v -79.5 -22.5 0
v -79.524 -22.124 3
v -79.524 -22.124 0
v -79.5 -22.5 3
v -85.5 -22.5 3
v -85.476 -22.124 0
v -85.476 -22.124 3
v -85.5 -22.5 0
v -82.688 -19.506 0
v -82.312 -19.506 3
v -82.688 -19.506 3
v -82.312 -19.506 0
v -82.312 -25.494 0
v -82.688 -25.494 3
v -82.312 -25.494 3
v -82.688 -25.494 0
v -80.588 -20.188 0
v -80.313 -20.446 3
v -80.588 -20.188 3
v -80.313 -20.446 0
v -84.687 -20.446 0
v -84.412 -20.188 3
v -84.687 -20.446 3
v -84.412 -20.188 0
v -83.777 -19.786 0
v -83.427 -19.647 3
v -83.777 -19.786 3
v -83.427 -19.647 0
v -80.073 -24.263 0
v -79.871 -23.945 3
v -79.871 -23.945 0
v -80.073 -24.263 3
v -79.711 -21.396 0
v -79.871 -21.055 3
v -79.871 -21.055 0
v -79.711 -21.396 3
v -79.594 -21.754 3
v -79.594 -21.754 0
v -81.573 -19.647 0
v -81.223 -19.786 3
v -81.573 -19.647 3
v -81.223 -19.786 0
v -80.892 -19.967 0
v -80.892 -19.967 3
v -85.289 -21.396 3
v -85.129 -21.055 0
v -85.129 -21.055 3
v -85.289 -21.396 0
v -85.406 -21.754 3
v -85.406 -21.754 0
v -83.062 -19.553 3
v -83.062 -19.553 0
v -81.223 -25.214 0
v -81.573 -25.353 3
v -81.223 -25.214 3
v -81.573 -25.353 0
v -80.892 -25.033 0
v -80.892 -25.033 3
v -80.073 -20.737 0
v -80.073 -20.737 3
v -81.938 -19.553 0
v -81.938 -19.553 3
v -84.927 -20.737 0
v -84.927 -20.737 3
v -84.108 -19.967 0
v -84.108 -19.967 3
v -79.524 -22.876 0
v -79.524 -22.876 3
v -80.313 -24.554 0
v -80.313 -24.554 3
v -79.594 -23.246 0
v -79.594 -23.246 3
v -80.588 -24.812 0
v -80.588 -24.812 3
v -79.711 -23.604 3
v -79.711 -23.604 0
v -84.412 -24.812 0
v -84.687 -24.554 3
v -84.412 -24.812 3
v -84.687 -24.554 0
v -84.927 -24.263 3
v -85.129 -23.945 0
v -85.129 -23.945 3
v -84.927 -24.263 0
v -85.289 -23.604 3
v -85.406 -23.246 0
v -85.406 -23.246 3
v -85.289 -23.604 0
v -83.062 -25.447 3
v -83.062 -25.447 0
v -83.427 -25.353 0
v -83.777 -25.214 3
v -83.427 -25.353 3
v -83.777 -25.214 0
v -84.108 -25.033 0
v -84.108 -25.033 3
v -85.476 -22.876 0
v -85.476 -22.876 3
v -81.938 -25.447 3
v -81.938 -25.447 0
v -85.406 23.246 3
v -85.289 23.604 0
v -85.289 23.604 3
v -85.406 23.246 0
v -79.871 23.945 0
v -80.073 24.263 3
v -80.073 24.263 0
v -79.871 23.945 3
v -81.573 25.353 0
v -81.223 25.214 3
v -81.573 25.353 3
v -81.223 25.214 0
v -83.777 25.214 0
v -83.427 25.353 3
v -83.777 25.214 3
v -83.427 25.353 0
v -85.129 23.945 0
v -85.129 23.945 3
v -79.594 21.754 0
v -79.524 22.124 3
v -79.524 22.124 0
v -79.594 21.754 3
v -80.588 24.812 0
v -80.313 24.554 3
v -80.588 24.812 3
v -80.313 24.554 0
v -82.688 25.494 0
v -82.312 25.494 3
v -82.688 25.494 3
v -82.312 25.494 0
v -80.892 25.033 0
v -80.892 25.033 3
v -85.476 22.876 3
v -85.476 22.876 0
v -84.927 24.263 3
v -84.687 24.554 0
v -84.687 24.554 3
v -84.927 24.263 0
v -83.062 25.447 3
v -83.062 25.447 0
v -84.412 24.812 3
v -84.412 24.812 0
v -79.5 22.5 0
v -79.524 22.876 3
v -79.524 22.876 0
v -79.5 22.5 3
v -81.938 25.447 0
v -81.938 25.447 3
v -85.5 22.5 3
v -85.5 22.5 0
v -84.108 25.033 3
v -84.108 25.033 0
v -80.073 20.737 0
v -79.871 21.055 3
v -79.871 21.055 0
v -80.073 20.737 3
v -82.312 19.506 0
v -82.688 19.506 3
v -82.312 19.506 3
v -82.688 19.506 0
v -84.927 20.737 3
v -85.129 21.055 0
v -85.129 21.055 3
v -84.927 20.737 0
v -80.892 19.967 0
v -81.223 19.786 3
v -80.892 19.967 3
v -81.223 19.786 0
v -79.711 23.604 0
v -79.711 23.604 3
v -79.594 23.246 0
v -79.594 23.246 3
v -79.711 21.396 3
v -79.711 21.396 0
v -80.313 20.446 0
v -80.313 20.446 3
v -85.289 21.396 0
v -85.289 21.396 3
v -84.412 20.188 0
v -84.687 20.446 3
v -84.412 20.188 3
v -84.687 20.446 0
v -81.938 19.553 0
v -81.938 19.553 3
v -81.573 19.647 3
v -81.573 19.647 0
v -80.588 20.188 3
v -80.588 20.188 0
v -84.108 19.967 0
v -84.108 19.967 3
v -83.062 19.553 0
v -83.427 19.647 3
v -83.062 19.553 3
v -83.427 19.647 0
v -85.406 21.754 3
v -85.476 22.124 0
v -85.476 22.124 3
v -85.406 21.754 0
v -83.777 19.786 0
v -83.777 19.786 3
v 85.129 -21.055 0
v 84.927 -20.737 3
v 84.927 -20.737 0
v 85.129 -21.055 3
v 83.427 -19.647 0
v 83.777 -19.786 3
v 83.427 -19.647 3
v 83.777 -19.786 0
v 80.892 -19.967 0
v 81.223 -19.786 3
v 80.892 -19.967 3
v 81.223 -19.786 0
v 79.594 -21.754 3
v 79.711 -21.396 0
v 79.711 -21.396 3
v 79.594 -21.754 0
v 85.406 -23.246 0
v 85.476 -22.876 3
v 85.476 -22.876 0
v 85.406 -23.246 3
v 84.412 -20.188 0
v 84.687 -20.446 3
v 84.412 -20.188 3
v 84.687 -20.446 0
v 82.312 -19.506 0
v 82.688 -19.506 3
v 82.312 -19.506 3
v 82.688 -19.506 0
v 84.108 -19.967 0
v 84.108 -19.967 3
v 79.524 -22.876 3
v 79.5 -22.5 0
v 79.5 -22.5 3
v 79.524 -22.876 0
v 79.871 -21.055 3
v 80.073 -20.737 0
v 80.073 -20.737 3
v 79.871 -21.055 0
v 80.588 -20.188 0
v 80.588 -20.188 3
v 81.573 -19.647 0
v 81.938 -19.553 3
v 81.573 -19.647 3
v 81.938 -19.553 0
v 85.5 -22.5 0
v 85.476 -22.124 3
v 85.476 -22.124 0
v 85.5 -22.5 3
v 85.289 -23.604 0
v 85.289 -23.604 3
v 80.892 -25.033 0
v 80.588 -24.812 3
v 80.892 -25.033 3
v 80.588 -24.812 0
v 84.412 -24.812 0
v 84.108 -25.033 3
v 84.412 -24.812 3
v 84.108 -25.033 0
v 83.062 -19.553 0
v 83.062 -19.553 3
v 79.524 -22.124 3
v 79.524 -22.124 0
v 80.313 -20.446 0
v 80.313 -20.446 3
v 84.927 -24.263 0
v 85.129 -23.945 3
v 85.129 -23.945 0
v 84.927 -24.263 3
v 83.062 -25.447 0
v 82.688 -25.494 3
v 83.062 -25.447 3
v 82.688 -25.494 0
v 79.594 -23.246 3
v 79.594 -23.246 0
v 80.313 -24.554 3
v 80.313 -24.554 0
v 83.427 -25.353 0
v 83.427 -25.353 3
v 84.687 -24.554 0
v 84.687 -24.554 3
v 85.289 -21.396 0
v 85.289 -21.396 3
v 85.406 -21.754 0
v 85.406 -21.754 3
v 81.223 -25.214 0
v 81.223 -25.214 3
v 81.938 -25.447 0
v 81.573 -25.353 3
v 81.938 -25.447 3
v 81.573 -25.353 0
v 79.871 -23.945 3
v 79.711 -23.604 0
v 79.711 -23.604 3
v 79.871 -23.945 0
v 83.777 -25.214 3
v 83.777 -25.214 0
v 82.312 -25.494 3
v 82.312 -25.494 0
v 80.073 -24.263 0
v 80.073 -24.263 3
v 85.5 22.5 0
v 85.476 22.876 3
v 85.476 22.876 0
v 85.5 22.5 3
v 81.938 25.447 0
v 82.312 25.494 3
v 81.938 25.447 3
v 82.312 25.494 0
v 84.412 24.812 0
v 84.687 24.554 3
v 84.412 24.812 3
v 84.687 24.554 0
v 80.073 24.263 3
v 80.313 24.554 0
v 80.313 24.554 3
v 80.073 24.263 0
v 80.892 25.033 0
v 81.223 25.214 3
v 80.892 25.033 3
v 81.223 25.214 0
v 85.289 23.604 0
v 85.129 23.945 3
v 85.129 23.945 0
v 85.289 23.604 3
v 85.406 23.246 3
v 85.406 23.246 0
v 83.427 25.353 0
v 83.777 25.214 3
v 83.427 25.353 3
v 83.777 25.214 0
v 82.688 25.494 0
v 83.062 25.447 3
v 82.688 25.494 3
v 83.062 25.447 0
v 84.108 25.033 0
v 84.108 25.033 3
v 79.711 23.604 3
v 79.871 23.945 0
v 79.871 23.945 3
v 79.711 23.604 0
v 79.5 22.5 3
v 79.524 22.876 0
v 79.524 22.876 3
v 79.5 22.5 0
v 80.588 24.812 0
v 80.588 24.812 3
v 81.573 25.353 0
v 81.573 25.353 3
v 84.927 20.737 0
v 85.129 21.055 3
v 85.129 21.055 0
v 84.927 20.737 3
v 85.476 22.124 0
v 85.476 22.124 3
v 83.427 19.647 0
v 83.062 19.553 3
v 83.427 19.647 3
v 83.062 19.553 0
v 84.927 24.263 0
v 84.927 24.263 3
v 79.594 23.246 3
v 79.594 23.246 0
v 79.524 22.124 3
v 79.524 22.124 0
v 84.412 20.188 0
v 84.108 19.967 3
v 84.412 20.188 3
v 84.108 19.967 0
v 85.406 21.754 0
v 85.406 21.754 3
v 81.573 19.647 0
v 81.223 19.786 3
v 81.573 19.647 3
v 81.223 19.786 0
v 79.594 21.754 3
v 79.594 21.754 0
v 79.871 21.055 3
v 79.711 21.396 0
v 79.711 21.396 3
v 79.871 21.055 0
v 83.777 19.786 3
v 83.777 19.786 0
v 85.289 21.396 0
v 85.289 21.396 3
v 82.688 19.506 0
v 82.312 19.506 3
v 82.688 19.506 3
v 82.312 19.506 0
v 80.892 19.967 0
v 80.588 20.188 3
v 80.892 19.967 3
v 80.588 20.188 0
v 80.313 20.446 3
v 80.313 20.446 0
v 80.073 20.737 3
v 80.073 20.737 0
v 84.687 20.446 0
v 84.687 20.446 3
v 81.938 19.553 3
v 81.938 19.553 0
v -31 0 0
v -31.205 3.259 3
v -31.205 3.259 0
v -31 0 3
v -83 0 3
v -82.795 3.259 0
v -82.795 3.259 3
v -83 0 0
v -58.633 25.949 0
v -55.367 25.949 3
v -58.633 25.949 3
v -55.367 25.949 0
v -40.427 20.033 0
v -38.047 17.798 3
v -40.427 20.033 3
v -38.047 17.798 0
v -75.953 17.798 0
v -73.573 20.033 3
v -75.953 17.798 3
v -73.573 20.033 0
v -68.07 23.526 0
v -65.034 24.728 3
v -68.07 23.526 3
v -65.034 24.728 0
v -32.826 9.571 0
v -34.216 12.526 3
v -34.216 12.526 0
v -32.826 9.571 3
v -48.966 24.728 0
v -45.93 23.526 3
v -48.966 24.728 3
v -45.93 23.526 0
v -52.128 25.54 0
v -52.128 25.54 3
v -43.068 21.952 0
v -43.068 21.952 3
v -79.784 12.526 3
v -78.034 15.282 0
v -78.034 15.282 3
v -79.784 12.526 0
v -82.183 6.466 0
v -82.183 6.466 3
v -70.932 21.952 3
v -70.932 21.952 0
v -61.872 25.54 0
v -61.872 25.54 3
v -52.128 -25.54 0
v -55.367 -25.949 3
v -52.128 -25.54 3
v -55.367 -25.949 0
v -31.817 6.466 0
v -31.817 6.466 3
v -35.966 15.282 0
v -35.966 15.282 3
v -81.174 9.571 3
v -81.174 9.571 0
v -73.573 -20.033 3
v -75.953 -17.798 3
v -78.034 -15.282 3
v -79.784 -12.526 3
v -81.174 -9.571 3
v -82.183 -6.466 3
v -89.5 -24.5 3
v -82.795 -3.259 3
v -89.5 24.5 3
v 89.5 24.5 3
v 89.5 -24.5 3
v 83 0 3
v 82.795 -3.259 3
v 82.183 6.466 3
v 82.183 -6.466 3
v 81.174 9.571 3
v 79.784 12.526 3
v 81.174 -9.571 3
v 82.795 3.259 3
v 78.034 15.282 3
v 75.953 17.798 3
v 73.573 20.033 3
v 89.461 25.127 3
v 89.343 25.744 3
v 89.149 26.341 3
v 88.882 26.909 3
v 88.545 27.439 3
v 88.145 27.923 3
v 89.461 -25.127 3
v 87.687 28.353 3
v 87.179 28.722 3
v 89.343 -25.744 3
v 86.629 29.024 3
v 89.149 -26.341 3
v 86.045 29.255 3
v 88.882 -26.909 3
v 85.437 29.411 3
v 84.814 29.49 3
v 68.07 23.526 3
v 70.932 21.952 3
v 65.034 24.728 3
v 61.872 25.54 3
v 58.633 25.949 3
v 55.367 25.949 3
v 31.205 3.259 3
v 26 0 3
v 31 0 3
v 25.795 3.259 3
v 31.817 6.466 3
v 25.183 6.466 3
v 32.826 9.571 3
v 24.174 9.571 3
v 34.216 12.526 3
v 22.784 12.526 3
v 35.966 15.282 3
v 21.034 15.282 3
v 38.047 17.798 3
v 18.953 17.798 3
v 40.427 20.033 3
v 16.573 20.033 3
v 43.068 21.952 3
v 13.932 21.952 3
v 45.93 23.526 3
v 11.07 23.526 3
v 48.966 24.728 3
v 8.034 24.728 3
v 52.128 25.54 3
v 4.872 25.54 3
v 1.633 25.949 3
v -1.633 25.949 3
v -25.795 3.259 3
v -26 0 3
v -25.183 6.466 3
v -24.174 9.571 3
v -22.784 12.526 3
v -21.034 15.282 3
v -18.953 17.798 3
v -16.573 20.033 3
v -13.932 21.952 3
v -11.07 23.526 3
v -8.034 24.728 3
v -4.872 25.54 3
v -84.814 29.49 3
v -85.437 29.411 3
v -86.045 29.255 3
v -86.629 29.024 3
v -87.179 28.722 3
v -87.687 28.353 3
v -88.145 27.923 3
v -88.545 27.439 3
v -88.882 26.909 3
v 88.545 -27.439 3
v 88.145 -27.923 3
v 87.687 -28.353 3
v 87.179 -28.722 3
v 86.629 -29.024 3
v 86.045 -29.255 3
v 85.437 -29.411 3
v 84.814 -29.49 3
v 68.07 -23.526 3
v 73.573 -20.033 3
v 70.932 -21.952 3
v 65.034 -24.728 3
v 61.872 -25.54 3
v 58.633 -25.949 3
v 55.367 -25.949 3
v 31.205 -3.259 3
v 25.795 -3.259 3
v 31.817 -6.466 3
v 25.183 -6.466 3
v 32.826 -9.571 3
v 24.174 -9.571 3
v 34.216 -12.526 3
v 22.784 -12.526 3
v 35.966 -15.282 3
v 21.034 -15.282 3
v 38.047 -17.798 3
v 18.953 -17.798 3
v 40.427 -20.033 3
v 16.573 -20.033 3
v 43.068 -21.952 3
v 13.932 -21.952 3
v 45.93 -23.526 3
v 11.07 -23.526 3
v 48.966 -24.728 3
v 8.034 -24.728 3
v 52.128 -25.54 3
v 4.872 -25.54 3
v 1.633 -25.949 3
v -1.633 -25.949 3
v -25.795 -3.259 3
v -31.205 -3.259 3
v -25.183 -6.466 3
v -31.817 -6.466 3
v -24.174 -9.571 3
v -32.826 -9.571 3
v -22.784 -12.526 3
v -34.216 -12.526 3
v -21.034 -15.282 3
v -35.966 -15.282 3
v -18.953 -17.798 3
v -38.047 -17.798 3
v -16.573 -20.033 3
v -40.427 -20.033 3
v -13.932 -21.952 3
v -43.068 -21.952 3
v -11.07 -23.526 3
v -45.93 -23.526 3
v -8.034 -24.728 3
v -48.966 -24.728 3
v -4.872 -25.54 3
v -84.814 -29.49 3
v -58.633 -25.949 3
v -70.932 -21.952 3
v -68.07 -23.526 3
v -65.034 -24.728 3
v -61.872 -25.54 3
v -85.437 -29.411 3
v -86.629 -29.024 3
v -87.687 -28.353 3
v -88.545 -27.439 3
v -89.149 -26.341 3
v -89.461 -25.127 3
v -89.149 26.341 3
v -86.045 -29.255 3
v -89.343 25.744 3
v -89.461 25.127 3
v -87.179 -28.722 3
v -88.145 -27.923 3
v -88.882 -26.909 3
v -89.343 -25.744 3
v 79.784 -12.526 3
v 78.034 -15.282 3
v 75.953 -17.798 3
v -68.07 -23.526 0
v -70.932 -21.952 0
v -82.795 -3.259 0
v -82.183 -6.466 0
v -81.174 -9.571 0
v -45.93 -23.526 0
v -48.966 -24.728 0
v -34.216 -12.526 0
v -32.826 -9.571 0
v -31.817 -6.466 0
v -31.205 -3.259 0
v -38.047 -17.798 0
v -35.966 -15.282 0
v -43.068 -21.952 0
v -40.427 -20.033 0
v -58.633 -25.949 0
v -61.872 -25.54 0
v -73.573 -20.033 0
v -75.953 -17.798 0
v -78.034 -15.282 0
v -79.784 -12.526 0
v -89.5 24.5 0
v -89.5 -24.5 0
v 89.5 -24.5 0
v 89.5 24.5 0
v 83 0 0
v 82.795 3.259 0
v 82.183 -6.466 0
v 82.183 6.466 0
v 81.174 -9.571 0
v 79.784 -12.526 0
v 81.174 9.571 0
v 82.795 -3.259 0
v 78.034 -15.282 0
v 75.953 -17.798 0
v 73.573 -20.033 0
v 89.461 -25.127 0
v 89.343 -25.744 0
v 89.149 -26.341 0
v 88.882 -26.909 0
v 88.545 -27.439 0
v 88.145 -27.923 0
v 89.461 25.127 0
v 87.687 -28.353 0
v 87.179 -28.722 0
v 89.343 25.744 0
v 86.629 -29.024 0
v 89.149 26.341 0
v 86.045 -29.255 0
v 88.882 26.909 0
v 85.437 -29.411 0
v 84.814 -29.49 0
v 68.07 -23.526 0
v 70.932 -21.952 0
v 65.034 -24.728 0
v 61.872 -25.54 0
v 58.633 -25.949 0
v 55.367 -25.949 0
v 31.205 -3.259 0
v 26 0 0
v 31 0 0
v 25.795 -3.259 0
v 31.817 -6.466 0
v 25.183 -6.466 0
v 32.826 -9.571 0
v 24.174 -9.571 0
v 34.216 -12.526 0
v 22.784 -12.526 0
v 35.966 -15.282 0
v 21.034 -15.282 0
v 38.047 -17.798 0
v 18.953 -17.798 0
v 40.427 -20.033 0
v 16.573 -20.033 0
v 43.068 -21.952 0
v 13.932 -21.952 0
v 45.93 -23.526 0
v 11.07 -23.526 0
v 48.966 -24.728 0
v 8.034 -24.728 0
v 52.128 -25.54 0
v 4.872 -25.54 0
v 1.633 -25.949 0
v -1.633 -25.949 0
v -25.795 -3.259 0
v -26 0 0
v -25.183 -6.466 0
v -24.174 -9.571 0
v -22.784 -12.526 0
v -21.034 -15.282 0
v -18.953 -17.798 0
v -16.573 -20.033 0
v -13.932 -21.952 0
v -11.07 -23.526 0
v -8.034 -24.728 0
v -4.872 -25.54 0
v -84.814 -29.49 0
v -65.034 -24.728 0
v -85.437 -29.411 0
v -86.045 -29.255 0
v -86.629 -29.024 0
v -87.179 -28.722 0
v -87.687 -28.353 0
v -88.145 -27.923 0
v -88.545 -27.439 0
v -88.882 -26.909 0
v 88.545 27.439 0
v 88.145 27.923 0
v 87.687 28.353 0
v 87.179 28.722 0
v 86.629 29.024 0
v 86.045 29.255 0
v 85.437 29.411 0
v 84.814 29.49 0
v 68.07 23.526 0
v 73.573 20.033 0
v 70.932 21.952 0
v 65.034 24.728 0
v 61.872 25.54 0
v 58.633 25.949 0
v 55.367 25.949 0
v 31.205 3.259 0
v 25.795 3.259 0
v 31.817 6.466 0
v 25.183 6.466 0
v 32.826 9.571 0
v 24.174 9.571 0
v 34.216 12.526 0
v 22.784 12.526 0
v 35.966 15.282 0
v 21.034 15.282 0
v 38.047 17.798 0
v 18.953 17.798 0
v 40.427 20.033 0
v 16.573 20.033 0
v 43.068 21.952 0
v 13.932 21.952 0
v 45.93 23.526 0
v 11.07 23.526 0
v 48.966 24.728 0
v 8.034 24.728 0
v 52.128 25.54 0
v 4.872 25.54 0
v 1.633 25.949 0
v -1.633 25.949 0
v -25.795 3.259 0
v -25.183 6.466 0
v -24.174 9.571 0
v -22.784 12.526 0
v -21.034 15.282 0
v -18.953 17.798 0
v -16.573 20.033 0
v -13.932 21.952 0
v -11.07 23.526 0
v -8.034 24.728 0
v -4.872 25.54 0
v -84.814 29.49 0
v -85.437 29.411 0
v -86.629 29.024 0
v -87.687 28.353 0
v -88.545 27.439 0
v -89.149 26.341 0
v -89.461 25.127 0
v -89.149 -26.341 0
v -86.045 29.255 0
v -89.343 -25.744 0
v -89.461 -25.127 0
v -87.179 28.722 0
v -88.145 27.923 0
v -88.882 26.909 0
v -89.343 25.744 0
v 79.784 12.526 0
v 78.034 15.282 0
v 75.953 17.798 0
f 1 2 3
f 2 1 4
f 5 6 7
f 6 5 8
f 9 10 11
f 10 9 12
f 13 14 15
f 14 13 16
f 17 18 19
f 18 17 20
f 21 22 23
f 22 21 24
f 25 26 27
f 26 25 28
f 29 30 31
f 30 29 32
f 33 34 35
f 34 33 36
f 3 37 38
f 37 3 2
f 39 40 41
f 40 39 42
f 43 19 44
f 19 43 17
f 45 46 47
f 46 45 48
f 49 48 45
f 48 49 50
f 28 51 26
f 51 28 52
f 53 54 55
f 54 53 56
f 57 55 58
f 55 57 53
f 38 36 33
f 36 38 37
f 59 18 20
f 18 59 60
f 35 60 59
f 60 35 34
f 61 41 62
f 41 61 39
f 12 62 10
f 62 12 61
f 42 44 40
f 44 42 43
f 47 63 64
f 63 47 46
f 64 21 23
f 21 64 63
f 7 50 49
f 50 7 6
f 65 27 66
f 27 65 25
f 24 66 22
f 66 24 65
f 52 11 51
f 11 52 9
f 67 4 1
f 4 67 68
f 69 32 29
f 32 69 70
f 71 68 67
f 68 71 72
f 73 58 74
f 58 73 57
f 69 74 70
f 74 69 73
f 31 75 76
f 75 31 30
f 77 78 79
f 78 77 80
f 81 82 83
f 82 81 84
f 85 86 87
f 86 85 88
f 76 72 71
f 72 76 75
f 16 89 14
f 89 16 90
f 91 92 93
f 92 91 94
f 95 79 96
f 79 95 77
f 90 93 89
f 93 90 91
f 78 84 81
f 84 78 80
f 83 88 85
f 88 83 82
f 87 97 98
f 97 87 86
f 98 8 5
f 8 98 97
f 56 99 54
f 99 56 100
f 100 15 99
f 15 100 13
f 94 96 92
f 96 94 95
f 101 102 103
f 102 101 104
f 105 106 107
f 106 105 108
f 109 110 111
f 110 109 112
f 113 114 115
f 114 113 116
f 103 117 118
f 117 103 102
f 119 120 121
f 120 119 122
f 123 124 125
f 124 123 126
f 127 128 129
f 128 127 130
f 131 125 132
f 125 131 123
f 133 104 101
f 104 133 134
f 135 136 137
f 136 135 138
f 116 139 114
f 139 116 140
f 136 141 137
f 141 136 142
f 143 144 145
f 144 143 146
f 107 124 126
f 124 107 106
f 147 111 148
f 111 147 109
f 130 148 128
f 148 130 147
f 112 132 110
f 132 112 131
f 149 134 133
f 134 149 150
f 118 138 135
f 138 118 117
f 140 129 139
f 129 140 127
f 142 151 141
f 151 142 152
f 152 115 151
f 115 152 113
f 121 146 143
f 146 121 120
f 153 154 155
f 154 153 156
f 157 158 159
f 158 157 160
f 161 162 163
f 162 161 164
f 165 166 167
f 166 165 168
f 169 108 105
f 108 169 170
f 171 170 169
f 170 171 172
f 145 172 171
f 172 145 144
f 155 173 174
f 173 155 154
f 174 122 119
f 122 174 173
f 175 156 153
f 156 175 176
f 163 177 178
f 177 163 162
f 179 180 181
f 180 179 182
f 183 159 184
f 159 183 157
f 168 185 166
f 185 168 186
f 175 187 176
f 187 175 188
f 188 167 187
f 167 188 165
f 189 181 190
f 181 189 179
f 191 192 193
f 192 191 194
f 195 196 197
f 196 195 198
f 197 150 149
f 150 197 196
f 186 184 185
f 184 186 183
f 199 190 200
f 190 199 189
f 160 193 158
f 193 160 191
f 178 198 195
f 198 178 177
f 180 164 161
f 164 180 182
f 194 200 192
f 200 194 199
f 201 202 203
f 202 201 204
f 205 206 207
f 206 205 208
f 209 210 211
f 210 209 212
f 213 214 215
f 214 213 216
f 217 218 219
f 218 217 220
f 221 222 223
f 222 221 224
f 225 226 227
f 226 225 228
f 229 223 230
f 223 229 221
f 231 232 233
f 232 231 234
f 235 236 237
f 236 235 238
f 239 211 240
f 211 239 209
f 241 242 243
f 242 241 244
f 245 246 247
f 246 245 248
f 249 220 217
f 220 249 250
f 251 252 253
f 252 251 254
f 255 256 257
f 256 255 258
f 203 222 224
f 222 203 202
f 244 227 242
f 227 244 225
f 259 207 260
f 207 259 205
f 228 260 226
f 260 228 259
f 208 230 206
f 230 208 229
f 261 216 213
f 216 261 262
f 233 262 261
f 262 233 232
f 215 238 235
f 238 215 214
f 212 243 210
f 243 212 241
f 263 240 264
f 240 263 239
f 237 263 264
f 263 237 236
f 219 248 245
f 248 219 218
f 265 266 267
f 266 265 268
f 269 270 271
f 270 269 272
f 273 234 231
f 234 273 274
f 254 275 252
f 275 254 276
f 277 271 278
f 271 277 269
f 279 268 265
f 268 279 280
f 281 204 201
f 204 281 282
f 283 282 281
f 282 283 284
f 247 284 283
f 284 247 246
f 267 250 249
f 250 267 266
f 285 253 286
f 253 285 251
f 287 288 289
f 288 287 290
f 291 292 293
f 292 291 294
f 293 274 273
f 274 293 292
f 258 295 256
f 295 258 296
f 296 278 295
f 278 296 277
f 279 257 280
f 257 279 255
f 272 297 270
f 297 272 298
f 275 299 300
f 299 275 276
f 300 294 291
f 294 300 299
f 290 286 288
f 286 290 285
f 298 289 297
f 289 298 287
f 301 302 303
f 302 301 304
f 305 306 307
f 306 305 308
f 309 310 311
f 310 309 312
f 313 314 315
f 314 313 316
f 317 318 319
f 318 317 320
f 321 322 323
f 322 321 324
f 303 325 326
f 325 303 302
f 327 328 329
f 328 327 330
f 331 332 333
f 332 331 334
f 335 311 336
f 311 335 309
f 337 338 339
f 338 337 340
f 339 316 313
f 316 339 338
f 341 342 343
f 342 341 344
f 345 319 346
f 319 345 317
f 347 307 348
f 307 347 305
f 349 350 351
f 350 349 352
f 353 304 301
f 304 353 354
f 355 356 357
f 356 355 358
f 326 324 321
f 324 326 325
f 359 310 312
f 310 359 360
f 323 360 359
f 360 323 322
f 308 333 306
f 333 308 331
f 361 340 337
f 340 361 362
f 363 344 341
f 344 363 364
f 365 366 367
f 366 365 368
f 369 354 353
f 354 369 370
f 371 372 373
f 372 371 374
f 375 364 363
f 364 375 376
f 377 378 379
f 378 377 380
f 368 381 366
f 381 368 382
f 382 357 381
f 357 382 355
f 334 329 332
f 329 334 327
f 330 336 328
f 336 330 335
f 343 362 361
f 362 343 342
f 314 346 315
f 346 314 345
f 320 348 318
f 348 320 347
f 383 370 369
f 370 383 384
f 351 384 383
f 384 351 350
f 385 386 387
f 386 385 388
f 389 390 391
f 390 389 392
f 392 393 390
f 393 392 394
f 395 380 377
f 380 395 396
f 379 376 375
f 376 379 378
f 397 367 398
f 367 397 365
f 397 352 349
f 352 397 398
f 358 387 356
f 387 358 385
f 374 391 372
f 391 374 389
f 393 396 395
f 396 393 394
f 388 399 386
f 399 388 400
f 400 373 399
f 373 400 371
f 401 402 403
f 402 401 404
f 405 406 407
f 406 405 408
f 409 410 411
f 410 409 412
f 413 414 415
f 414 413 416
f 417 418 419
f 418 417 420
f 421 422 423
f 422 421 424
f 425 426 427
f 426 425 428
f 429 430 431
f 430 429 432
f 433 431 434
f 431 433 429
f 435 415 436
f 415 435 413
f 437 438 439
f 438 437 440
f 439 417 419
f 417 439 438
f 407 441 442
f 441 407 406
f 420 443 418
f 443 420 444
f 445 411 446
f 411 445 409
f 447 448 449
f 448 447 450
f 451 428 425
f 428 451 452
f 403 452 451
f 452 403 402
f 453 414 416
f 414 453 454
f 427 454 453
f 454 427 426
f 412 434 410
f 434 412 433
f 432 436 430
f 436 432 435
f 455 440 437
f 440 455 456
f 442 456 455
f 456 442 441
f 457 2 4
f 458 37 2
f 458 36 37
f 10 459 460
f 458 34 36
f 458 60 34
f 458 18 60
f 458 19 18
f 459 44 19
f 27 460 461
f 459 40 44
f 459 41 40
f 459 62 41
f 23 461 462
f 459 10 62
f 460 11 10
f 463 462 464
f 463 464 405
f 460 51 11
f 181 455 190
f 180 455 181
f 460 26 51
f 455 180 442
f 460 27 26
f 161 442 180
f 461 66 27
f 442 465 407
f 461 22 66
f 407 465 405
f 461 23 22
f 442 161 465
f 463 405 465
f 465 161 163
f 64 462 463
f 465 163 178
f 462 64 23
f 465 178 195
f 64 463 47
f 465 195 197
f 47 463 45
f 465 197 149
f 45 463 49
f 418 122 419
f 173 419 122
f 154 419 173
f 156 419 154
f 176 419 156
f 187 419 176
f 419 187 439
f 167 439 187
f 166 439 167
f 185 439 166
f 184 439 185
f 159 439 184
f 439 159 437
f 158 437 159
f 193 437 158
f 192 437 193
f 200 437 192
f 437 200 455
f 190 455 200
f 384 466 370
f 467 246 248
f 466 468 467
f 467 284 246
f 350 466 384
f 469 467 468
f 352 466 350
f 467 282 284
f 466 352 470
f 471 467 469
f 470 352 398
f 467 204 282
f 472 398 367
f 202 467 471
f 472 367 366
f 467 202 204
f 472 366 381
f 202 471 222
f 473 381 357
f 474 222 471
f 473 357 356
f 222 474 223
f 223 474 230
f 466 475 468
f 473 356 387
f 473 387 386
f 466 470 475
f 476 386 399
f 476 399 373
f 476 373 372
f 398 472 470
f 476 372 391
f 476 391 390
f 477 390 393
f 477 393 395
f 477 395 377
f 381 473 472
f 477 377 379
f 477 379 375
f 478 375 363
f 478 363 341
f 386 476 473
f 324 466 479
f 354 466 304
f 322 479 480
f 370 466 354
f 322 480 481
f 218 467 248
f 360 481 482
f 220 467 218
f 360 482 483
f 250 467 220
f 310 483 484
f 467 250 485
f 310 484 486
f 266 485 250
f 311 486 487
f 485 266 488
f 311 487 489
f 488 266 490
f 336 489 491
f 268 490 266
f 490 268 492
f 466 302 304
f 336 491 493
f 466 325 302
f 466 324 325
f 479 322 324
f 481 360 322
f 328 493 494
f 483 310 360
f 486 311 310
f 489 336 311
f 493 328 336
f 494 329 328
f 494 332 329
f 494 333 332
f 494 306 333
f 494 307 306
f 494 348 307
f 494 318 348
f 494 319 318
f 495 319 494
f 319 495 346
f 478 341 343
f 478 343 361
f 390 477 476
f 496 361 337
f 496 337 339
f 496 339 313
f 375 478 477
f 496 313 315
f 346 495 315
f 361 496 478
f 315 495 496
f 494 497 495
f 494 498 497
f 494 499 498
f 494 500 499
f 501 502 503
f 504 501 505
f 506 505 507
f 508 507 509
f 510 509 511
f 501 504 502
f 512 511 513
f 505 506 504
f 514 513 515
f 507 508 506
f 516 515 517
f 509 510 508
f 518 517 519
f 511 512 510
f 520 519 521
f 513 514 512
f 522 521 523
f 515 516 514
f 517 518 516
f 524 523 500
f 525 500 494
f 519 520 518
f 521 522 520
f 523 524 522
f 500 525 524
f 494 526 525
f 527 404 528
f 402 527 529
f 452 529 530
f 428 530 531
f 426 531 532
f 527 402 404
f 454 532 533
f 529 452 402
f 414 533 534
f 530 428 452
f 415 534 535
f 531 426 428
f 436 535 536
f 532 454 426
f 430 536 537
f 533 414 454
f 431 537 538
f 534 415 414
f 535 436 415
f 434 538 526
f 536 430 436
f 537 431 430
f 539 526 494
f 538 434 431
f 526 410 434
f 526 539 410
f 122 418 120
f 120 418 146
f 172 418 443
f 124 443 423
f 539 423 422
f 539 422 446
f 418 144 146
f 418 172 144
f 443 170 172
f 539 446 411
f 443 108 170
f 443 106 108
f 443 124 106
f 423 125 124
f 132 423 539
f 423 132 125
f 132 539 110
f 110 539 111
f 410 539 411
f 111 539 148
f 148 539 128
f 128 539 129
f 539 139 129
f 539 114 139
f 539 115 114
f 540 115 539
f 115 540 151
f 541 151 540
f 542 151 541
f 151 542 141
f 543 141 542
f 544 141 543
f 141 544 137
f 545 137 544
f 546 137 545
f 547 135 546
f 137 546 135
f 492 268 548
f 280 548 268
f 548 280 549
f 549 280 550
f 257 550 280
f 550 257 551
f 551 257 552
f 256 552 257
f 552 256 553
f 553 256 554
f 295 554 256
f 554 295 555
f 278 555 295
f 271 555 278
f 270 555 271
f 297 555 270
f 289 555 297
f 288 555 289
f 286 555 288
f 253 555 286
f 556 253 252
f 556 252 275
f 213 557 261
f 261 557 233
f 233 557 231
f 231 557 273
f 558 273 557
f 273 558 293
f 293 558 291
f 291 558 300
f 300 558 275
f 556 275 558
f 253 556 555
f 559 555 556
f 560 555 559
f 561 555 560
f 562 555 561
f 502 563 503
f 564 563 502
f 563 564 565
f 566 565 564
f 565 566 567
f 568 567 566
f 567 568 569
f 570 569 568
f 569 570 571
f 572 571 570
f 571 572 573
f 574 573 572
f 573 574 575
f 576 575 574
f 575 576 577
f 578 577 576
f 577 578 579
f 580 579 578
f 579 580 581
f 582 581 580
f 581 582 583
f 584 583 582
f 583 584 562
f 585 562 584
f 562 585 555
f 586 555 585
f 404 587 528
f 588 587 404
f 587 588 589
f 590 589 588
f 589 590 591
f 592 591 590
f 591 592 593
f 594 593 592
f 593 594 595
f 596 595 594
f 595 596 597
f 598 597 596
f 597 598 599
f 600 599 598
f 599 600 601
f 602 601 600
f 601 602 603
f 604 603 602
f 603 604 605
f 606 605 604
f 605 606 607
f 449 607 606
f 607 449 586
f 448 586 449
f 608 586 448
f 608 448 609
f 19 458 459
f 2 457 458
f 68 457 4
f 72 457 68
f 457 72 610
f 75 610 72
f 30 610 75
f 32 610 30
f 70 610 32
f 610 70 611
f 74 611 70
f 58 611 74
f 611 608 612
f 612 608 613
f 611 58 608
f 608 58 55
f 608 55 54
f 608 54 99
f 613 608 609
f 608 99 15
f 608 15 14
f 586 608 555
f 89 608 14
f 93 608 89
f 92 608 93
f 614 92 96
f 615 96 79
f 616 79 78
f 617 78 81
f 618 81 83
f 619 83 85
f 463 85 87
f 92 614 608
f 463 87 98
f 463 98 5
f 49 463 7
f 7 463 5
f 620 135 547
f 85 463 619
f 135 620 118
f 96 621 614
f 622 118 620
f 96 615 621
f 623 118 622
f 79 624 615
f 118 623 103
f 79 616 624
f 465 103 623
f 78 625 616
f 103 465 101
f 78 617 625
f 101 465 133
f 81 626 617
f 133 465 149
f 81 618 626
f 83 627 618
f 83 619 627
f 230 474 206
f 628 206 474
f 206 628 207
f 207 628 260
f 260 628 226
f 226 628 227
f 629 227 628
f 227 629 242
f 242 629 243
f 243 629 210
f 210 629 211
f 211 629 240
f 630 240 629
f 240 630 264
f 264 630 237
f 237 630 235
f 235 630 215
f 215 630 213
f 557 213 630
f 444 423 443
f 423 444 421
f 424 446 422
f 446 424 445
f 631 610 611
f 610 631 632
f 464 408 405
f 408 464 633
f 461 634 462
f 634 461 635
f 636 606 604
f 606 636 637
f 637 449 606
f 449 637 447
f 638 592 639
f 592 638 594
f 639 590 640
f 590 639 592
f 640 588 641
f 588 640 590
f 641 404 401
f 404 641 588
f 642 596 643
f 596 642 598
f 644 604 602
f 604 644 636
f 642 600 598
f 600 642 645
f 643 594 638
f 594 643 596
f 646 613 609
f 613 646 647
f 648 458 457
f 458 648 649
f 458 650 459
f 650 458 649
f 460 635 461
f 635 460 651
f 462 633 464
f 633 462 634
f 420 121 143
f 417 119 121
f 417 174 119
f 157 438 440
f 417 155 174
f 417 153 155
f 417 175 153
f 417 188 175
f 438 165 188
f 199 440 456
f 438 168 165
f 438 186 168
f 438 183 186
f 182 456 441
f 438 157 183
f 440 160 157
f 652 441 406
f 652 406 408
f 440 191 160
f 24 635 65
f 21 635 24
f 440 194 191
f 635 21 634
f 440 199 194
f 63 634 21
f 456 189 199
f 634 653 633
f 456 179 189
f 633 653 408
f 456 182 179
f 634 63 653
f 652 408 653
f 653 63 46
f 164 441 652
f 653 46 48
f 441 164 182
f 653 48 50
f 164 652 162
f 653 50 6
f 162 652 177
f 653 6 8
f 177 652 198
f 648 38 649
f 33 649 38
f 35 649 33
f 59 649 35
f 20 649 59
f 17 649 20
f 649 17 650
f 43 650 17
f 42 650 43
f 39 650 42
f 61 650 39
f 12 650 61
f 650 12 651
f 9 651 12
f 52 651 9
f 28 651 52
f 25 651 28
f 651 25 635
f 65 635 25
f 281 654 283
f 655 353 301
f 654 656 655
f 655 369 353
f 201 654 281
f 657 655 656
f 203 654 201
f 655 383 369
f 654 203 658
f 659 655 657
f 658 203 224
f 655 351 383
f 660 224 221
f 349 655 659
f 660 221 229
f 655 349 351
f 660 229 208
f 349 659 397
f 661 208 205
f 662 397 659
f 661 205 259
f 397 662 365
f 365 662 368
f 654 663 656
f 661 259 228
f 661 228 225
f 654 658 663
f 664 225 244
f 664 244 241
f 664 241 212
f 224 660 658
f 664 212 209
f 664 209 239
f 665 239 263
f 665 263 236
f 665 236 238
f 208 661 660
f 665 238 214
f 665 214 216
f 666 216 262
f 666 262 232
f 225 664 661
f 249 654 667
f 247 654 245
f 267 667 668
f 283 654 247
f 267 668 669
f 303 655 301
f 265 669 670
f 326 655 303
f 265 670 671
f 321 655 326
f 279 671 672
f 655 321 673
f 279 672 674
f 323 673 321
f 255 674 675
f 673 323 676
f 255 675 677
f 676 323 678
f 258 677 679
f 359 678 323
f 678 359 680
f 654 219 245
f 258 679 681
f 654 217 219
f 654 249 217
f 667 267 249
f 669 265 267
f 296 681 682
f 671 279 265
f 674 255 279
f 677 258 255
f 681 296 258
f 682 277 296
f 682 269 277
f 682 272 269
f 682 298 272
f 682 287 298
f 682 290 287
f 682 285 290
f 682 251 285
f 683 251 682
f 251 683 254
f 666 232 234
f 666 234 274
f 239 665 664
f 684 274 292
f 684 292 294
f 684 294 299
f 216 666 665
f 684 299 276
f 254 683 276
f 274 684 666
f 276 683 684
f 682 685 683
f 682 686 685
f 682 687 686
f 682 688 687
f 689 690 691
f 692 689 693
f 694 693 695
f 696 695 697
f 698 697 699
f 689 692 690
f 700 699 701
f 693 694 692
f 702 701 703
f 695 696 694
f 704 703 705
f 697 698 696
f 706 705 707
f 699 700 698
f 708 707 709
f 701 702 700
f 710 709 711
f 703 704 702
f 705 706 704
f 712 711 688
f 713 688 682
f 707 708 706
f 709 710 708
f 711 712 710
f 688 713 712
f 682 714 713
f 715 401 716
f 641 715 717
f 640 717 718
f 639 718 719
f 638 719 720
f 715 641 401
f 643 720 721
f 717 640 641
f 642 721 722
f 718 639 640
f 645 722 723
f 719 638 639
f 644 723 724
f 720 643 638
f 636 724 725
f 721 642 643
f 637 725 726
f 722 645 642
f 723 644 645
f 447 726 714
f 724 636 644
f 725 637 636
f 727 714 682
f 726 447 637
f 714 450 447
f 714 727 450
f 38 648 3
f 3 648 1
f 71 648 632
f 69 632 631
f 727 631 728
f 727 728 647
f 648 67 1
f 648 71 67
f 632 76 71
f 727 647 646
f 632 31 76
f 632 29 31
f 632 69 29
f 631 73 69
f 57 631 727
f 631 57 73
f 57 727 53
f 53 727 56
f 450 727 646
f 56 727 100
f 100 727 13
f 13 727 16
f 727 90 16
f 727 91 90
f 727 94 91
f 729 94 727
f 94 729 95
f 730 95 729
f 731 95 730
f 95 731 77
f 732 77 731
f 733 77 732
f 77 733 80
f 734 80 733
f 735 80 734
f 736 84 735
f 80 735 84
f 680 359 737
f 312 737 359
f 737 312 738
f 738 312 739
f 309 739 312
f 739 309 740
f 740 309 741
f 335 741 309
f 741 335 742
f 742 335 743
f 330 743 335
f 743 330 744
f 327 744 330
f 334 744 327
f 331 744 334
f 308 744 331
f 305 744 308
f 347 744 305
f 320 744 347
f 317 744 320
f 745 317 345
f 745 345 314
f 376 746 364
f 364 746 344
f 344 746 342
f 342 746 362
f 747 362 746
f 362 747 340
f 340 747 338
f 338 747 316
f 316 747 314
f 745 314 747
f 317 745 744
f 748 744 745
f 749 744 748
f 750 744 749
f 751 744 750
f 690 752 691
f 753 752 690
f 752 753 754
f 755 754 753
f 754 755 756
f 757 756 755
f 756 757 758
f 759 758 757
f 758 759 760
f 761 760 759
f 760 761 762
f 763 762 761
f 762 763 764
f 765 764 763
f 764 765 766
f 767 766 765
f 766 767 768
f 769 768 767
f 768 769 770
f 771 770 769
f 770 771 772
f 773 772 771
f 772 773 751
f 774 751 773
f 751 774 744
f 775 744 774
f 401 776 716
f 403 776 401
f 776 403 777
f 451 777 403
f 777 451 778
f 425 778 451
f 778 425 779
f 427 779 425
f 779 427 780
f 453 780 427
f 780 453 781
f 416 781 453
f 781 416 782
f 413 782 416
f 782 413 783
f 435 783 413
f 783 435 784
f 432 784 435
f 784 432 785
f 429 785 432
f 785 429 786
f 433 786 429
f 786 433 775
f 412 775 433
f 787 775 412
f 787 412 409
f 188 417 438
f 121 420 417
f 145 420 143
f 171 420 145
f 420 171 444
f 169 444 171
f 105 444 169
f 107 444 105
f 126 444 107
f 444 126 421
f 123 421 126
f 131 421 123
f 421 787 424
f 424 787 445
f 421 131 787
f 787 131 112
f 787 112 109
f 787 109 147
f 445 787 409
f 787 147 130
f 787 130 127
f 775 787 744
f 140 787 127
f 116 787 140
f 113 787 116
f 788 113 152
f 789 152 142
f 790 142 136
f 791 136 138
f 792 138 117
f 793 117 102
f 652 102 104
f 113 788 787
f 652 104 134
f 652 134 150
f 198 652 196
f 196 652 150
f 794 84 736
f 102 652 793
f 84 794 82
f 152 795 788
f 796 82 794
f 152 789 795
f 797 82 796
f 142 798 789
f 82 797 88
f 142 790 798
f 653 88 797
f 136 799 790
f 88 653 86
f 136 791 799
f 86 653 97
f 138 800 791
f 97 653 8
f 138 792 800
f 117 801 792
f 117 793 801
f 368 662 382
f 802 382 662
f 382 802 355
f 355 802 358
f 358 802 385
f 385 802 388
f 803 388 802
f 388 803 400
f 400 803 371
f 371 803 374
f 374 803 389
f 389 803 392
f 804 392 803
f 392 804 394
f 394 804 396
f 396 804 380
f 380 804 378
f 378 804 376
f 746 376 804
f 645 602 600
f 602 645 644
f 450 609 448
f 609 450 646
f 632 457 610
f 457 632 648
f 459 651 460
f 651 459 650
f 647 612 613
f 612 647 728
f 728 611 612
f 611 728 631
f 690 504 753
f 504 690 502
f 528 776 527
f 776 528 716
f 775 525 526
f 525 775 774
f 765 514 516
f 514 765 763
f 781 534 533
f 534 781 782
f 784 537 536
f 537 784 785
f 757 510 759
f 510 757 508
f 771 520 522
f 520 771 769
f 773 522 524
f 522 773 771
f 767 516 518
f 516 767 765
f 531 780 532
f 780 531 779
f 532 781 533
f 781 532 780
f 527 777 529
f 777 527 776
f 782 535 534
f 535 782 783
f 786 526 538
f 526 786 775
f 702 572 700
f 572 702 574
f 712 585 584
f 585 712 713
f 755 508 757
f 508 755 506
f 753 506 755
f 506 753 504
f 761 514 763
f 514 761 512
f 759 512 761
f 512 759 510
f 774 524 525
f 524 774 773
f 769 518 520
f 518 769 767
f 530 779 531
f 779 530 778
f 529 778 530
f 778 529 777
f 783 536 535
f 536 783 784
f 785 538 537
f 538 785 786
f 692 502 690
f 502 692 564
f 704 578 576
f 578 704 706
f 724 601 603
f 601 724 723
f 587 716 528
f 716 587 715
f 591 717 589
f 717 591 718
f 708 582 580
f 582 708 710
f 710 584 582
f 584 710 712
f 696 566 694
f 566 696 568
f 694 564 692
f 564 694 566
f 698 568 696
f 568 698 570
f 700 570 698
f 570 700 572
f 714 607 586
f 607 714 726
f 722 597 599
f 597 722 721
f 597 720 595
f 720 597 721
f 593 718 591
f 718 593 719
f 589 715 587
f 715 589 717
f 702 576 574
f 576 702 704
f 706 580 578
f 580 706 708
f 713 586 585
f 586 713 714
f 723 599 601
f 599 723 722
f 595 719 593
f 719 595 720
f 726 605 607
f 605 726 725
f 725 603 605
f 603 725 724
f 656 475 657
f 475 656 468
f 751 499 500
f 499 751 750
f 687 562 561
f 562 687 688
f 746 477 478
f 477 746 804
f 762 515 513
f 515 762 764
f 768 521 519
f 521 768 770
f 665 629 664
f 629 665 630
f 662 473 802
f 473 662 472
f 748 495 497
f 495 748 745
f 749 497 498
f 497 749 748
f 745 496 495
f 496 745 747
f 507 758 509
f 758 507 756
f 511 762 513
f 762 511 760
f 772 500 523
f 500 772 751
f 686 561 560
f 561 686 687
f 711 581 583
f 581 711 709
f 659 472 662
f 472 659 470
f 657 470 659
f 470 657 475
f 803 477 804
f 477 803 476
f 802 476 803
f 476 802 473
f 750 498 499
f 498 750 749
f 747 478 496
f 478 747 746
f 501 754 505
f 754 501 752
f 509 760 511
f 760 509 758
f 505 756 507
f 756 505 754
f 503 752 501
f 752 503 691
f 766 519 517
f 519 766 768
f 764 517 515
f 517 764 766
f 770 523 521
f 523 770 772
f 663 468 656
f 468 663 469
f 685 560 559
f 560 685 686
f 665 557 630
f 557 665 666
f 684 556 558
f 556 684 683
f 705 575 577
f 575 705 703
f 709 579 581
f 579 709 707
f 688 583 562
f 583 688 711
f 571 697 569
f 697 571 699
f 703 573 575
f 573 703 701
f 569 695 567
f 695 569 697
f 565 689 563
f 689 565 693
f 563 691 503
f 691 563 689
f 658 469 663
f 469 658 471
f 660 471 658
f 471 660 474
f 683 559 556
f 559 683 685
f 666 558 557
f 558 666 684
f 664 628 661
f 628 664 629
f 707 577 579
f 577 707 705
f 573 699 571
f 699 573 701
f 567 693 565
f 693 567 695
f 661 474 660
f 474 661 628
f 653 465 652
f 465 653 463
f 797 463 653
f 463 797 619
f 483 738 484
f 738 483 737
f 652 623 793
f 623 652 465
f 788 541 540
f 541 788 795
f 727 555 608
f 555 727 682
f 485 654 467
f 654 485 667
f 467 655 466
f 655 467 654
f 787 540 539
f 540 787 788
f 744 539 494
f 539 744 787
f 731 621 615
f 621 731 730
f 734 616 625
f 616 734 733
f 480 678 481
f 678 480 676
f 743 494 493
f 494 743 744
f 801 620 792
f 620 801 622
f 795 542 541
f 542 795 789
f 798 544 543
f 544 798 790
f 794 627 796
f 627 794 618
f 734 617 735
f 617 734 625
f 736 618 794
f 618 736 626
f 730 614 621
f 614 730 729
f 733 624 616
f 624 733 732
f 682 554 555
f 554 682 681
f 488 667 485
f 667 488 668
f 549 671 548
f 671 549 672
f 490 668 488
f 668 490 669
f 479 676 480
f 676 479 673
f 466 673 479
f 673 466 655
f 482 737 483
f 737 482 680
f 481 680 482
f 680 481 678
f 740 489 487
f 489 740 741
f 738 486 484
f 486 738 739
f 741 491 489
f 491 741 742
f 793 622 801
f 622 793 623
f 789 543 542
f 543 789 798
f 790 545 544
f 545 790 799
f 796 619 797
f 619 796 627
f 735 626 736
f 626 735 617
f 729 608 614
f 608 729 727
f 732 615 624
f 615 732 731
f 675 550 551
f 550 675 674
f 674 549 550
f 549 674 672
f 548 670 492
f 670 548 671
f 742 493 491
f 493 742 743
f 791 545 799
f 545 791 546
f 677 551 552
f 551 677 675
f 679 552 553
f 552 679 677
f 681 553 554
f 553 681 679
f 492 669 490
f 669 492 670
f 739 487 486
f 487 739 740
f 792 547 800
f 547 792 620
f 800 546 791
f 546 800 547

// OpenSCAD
$fn = 50;


difference() {
	union() {
		hull() {
			translate(v = [-84.5000000000, 24.5000000000, 0]) {
				cylinder(h = 3, r = 5);
			}
			translate(v = [84.5000000000, 24.5000000000, 0]) {
				cylinder(h = 3, r = 5);
			}
			translate(v = [-84.5000000000, -24.5000000000, 0]) {
				cylinder(h = 3, r = 5);
			}
			translate(v = [84.5000000000, -24.5000000000, 0]) {
				cylinder(h = 3, r = 5);
			}
		}
	}
	union() {
		#translate(v = [-82.5000000000, -22.5000000000, -100.0000000000]) {
			cylinder(h = 200, r = 3.0000000000);
		}
		#translate(v = [-82.5000000000, 22.5000000000, -100.0000000000]) {
			cylinder(h = 200, r = 3.0000000000);
		}
		#translate(v = [82.5000000000, -22.5000000000, -100.0000000000]) {
			cylinder(h = 200, r = 3.0000000000);
		}
		#translate(v = [82.5000000000, 22.5000000000, -100.0000000000]) {
			cylinder(h = 200, r = 3.0000000000);
		}
		#translate(v = [-57.0000000000, 0, 0]) {
			cylinder(h = 3, r = 26.0000000000);
		}
		#cylinder(h = 3, r = 26.0000000000);
		#translate(v = [57.0000000000, 0, 0]) {
			cylinder(h = 3, r = 26.0000000000);
		}
	}
}
